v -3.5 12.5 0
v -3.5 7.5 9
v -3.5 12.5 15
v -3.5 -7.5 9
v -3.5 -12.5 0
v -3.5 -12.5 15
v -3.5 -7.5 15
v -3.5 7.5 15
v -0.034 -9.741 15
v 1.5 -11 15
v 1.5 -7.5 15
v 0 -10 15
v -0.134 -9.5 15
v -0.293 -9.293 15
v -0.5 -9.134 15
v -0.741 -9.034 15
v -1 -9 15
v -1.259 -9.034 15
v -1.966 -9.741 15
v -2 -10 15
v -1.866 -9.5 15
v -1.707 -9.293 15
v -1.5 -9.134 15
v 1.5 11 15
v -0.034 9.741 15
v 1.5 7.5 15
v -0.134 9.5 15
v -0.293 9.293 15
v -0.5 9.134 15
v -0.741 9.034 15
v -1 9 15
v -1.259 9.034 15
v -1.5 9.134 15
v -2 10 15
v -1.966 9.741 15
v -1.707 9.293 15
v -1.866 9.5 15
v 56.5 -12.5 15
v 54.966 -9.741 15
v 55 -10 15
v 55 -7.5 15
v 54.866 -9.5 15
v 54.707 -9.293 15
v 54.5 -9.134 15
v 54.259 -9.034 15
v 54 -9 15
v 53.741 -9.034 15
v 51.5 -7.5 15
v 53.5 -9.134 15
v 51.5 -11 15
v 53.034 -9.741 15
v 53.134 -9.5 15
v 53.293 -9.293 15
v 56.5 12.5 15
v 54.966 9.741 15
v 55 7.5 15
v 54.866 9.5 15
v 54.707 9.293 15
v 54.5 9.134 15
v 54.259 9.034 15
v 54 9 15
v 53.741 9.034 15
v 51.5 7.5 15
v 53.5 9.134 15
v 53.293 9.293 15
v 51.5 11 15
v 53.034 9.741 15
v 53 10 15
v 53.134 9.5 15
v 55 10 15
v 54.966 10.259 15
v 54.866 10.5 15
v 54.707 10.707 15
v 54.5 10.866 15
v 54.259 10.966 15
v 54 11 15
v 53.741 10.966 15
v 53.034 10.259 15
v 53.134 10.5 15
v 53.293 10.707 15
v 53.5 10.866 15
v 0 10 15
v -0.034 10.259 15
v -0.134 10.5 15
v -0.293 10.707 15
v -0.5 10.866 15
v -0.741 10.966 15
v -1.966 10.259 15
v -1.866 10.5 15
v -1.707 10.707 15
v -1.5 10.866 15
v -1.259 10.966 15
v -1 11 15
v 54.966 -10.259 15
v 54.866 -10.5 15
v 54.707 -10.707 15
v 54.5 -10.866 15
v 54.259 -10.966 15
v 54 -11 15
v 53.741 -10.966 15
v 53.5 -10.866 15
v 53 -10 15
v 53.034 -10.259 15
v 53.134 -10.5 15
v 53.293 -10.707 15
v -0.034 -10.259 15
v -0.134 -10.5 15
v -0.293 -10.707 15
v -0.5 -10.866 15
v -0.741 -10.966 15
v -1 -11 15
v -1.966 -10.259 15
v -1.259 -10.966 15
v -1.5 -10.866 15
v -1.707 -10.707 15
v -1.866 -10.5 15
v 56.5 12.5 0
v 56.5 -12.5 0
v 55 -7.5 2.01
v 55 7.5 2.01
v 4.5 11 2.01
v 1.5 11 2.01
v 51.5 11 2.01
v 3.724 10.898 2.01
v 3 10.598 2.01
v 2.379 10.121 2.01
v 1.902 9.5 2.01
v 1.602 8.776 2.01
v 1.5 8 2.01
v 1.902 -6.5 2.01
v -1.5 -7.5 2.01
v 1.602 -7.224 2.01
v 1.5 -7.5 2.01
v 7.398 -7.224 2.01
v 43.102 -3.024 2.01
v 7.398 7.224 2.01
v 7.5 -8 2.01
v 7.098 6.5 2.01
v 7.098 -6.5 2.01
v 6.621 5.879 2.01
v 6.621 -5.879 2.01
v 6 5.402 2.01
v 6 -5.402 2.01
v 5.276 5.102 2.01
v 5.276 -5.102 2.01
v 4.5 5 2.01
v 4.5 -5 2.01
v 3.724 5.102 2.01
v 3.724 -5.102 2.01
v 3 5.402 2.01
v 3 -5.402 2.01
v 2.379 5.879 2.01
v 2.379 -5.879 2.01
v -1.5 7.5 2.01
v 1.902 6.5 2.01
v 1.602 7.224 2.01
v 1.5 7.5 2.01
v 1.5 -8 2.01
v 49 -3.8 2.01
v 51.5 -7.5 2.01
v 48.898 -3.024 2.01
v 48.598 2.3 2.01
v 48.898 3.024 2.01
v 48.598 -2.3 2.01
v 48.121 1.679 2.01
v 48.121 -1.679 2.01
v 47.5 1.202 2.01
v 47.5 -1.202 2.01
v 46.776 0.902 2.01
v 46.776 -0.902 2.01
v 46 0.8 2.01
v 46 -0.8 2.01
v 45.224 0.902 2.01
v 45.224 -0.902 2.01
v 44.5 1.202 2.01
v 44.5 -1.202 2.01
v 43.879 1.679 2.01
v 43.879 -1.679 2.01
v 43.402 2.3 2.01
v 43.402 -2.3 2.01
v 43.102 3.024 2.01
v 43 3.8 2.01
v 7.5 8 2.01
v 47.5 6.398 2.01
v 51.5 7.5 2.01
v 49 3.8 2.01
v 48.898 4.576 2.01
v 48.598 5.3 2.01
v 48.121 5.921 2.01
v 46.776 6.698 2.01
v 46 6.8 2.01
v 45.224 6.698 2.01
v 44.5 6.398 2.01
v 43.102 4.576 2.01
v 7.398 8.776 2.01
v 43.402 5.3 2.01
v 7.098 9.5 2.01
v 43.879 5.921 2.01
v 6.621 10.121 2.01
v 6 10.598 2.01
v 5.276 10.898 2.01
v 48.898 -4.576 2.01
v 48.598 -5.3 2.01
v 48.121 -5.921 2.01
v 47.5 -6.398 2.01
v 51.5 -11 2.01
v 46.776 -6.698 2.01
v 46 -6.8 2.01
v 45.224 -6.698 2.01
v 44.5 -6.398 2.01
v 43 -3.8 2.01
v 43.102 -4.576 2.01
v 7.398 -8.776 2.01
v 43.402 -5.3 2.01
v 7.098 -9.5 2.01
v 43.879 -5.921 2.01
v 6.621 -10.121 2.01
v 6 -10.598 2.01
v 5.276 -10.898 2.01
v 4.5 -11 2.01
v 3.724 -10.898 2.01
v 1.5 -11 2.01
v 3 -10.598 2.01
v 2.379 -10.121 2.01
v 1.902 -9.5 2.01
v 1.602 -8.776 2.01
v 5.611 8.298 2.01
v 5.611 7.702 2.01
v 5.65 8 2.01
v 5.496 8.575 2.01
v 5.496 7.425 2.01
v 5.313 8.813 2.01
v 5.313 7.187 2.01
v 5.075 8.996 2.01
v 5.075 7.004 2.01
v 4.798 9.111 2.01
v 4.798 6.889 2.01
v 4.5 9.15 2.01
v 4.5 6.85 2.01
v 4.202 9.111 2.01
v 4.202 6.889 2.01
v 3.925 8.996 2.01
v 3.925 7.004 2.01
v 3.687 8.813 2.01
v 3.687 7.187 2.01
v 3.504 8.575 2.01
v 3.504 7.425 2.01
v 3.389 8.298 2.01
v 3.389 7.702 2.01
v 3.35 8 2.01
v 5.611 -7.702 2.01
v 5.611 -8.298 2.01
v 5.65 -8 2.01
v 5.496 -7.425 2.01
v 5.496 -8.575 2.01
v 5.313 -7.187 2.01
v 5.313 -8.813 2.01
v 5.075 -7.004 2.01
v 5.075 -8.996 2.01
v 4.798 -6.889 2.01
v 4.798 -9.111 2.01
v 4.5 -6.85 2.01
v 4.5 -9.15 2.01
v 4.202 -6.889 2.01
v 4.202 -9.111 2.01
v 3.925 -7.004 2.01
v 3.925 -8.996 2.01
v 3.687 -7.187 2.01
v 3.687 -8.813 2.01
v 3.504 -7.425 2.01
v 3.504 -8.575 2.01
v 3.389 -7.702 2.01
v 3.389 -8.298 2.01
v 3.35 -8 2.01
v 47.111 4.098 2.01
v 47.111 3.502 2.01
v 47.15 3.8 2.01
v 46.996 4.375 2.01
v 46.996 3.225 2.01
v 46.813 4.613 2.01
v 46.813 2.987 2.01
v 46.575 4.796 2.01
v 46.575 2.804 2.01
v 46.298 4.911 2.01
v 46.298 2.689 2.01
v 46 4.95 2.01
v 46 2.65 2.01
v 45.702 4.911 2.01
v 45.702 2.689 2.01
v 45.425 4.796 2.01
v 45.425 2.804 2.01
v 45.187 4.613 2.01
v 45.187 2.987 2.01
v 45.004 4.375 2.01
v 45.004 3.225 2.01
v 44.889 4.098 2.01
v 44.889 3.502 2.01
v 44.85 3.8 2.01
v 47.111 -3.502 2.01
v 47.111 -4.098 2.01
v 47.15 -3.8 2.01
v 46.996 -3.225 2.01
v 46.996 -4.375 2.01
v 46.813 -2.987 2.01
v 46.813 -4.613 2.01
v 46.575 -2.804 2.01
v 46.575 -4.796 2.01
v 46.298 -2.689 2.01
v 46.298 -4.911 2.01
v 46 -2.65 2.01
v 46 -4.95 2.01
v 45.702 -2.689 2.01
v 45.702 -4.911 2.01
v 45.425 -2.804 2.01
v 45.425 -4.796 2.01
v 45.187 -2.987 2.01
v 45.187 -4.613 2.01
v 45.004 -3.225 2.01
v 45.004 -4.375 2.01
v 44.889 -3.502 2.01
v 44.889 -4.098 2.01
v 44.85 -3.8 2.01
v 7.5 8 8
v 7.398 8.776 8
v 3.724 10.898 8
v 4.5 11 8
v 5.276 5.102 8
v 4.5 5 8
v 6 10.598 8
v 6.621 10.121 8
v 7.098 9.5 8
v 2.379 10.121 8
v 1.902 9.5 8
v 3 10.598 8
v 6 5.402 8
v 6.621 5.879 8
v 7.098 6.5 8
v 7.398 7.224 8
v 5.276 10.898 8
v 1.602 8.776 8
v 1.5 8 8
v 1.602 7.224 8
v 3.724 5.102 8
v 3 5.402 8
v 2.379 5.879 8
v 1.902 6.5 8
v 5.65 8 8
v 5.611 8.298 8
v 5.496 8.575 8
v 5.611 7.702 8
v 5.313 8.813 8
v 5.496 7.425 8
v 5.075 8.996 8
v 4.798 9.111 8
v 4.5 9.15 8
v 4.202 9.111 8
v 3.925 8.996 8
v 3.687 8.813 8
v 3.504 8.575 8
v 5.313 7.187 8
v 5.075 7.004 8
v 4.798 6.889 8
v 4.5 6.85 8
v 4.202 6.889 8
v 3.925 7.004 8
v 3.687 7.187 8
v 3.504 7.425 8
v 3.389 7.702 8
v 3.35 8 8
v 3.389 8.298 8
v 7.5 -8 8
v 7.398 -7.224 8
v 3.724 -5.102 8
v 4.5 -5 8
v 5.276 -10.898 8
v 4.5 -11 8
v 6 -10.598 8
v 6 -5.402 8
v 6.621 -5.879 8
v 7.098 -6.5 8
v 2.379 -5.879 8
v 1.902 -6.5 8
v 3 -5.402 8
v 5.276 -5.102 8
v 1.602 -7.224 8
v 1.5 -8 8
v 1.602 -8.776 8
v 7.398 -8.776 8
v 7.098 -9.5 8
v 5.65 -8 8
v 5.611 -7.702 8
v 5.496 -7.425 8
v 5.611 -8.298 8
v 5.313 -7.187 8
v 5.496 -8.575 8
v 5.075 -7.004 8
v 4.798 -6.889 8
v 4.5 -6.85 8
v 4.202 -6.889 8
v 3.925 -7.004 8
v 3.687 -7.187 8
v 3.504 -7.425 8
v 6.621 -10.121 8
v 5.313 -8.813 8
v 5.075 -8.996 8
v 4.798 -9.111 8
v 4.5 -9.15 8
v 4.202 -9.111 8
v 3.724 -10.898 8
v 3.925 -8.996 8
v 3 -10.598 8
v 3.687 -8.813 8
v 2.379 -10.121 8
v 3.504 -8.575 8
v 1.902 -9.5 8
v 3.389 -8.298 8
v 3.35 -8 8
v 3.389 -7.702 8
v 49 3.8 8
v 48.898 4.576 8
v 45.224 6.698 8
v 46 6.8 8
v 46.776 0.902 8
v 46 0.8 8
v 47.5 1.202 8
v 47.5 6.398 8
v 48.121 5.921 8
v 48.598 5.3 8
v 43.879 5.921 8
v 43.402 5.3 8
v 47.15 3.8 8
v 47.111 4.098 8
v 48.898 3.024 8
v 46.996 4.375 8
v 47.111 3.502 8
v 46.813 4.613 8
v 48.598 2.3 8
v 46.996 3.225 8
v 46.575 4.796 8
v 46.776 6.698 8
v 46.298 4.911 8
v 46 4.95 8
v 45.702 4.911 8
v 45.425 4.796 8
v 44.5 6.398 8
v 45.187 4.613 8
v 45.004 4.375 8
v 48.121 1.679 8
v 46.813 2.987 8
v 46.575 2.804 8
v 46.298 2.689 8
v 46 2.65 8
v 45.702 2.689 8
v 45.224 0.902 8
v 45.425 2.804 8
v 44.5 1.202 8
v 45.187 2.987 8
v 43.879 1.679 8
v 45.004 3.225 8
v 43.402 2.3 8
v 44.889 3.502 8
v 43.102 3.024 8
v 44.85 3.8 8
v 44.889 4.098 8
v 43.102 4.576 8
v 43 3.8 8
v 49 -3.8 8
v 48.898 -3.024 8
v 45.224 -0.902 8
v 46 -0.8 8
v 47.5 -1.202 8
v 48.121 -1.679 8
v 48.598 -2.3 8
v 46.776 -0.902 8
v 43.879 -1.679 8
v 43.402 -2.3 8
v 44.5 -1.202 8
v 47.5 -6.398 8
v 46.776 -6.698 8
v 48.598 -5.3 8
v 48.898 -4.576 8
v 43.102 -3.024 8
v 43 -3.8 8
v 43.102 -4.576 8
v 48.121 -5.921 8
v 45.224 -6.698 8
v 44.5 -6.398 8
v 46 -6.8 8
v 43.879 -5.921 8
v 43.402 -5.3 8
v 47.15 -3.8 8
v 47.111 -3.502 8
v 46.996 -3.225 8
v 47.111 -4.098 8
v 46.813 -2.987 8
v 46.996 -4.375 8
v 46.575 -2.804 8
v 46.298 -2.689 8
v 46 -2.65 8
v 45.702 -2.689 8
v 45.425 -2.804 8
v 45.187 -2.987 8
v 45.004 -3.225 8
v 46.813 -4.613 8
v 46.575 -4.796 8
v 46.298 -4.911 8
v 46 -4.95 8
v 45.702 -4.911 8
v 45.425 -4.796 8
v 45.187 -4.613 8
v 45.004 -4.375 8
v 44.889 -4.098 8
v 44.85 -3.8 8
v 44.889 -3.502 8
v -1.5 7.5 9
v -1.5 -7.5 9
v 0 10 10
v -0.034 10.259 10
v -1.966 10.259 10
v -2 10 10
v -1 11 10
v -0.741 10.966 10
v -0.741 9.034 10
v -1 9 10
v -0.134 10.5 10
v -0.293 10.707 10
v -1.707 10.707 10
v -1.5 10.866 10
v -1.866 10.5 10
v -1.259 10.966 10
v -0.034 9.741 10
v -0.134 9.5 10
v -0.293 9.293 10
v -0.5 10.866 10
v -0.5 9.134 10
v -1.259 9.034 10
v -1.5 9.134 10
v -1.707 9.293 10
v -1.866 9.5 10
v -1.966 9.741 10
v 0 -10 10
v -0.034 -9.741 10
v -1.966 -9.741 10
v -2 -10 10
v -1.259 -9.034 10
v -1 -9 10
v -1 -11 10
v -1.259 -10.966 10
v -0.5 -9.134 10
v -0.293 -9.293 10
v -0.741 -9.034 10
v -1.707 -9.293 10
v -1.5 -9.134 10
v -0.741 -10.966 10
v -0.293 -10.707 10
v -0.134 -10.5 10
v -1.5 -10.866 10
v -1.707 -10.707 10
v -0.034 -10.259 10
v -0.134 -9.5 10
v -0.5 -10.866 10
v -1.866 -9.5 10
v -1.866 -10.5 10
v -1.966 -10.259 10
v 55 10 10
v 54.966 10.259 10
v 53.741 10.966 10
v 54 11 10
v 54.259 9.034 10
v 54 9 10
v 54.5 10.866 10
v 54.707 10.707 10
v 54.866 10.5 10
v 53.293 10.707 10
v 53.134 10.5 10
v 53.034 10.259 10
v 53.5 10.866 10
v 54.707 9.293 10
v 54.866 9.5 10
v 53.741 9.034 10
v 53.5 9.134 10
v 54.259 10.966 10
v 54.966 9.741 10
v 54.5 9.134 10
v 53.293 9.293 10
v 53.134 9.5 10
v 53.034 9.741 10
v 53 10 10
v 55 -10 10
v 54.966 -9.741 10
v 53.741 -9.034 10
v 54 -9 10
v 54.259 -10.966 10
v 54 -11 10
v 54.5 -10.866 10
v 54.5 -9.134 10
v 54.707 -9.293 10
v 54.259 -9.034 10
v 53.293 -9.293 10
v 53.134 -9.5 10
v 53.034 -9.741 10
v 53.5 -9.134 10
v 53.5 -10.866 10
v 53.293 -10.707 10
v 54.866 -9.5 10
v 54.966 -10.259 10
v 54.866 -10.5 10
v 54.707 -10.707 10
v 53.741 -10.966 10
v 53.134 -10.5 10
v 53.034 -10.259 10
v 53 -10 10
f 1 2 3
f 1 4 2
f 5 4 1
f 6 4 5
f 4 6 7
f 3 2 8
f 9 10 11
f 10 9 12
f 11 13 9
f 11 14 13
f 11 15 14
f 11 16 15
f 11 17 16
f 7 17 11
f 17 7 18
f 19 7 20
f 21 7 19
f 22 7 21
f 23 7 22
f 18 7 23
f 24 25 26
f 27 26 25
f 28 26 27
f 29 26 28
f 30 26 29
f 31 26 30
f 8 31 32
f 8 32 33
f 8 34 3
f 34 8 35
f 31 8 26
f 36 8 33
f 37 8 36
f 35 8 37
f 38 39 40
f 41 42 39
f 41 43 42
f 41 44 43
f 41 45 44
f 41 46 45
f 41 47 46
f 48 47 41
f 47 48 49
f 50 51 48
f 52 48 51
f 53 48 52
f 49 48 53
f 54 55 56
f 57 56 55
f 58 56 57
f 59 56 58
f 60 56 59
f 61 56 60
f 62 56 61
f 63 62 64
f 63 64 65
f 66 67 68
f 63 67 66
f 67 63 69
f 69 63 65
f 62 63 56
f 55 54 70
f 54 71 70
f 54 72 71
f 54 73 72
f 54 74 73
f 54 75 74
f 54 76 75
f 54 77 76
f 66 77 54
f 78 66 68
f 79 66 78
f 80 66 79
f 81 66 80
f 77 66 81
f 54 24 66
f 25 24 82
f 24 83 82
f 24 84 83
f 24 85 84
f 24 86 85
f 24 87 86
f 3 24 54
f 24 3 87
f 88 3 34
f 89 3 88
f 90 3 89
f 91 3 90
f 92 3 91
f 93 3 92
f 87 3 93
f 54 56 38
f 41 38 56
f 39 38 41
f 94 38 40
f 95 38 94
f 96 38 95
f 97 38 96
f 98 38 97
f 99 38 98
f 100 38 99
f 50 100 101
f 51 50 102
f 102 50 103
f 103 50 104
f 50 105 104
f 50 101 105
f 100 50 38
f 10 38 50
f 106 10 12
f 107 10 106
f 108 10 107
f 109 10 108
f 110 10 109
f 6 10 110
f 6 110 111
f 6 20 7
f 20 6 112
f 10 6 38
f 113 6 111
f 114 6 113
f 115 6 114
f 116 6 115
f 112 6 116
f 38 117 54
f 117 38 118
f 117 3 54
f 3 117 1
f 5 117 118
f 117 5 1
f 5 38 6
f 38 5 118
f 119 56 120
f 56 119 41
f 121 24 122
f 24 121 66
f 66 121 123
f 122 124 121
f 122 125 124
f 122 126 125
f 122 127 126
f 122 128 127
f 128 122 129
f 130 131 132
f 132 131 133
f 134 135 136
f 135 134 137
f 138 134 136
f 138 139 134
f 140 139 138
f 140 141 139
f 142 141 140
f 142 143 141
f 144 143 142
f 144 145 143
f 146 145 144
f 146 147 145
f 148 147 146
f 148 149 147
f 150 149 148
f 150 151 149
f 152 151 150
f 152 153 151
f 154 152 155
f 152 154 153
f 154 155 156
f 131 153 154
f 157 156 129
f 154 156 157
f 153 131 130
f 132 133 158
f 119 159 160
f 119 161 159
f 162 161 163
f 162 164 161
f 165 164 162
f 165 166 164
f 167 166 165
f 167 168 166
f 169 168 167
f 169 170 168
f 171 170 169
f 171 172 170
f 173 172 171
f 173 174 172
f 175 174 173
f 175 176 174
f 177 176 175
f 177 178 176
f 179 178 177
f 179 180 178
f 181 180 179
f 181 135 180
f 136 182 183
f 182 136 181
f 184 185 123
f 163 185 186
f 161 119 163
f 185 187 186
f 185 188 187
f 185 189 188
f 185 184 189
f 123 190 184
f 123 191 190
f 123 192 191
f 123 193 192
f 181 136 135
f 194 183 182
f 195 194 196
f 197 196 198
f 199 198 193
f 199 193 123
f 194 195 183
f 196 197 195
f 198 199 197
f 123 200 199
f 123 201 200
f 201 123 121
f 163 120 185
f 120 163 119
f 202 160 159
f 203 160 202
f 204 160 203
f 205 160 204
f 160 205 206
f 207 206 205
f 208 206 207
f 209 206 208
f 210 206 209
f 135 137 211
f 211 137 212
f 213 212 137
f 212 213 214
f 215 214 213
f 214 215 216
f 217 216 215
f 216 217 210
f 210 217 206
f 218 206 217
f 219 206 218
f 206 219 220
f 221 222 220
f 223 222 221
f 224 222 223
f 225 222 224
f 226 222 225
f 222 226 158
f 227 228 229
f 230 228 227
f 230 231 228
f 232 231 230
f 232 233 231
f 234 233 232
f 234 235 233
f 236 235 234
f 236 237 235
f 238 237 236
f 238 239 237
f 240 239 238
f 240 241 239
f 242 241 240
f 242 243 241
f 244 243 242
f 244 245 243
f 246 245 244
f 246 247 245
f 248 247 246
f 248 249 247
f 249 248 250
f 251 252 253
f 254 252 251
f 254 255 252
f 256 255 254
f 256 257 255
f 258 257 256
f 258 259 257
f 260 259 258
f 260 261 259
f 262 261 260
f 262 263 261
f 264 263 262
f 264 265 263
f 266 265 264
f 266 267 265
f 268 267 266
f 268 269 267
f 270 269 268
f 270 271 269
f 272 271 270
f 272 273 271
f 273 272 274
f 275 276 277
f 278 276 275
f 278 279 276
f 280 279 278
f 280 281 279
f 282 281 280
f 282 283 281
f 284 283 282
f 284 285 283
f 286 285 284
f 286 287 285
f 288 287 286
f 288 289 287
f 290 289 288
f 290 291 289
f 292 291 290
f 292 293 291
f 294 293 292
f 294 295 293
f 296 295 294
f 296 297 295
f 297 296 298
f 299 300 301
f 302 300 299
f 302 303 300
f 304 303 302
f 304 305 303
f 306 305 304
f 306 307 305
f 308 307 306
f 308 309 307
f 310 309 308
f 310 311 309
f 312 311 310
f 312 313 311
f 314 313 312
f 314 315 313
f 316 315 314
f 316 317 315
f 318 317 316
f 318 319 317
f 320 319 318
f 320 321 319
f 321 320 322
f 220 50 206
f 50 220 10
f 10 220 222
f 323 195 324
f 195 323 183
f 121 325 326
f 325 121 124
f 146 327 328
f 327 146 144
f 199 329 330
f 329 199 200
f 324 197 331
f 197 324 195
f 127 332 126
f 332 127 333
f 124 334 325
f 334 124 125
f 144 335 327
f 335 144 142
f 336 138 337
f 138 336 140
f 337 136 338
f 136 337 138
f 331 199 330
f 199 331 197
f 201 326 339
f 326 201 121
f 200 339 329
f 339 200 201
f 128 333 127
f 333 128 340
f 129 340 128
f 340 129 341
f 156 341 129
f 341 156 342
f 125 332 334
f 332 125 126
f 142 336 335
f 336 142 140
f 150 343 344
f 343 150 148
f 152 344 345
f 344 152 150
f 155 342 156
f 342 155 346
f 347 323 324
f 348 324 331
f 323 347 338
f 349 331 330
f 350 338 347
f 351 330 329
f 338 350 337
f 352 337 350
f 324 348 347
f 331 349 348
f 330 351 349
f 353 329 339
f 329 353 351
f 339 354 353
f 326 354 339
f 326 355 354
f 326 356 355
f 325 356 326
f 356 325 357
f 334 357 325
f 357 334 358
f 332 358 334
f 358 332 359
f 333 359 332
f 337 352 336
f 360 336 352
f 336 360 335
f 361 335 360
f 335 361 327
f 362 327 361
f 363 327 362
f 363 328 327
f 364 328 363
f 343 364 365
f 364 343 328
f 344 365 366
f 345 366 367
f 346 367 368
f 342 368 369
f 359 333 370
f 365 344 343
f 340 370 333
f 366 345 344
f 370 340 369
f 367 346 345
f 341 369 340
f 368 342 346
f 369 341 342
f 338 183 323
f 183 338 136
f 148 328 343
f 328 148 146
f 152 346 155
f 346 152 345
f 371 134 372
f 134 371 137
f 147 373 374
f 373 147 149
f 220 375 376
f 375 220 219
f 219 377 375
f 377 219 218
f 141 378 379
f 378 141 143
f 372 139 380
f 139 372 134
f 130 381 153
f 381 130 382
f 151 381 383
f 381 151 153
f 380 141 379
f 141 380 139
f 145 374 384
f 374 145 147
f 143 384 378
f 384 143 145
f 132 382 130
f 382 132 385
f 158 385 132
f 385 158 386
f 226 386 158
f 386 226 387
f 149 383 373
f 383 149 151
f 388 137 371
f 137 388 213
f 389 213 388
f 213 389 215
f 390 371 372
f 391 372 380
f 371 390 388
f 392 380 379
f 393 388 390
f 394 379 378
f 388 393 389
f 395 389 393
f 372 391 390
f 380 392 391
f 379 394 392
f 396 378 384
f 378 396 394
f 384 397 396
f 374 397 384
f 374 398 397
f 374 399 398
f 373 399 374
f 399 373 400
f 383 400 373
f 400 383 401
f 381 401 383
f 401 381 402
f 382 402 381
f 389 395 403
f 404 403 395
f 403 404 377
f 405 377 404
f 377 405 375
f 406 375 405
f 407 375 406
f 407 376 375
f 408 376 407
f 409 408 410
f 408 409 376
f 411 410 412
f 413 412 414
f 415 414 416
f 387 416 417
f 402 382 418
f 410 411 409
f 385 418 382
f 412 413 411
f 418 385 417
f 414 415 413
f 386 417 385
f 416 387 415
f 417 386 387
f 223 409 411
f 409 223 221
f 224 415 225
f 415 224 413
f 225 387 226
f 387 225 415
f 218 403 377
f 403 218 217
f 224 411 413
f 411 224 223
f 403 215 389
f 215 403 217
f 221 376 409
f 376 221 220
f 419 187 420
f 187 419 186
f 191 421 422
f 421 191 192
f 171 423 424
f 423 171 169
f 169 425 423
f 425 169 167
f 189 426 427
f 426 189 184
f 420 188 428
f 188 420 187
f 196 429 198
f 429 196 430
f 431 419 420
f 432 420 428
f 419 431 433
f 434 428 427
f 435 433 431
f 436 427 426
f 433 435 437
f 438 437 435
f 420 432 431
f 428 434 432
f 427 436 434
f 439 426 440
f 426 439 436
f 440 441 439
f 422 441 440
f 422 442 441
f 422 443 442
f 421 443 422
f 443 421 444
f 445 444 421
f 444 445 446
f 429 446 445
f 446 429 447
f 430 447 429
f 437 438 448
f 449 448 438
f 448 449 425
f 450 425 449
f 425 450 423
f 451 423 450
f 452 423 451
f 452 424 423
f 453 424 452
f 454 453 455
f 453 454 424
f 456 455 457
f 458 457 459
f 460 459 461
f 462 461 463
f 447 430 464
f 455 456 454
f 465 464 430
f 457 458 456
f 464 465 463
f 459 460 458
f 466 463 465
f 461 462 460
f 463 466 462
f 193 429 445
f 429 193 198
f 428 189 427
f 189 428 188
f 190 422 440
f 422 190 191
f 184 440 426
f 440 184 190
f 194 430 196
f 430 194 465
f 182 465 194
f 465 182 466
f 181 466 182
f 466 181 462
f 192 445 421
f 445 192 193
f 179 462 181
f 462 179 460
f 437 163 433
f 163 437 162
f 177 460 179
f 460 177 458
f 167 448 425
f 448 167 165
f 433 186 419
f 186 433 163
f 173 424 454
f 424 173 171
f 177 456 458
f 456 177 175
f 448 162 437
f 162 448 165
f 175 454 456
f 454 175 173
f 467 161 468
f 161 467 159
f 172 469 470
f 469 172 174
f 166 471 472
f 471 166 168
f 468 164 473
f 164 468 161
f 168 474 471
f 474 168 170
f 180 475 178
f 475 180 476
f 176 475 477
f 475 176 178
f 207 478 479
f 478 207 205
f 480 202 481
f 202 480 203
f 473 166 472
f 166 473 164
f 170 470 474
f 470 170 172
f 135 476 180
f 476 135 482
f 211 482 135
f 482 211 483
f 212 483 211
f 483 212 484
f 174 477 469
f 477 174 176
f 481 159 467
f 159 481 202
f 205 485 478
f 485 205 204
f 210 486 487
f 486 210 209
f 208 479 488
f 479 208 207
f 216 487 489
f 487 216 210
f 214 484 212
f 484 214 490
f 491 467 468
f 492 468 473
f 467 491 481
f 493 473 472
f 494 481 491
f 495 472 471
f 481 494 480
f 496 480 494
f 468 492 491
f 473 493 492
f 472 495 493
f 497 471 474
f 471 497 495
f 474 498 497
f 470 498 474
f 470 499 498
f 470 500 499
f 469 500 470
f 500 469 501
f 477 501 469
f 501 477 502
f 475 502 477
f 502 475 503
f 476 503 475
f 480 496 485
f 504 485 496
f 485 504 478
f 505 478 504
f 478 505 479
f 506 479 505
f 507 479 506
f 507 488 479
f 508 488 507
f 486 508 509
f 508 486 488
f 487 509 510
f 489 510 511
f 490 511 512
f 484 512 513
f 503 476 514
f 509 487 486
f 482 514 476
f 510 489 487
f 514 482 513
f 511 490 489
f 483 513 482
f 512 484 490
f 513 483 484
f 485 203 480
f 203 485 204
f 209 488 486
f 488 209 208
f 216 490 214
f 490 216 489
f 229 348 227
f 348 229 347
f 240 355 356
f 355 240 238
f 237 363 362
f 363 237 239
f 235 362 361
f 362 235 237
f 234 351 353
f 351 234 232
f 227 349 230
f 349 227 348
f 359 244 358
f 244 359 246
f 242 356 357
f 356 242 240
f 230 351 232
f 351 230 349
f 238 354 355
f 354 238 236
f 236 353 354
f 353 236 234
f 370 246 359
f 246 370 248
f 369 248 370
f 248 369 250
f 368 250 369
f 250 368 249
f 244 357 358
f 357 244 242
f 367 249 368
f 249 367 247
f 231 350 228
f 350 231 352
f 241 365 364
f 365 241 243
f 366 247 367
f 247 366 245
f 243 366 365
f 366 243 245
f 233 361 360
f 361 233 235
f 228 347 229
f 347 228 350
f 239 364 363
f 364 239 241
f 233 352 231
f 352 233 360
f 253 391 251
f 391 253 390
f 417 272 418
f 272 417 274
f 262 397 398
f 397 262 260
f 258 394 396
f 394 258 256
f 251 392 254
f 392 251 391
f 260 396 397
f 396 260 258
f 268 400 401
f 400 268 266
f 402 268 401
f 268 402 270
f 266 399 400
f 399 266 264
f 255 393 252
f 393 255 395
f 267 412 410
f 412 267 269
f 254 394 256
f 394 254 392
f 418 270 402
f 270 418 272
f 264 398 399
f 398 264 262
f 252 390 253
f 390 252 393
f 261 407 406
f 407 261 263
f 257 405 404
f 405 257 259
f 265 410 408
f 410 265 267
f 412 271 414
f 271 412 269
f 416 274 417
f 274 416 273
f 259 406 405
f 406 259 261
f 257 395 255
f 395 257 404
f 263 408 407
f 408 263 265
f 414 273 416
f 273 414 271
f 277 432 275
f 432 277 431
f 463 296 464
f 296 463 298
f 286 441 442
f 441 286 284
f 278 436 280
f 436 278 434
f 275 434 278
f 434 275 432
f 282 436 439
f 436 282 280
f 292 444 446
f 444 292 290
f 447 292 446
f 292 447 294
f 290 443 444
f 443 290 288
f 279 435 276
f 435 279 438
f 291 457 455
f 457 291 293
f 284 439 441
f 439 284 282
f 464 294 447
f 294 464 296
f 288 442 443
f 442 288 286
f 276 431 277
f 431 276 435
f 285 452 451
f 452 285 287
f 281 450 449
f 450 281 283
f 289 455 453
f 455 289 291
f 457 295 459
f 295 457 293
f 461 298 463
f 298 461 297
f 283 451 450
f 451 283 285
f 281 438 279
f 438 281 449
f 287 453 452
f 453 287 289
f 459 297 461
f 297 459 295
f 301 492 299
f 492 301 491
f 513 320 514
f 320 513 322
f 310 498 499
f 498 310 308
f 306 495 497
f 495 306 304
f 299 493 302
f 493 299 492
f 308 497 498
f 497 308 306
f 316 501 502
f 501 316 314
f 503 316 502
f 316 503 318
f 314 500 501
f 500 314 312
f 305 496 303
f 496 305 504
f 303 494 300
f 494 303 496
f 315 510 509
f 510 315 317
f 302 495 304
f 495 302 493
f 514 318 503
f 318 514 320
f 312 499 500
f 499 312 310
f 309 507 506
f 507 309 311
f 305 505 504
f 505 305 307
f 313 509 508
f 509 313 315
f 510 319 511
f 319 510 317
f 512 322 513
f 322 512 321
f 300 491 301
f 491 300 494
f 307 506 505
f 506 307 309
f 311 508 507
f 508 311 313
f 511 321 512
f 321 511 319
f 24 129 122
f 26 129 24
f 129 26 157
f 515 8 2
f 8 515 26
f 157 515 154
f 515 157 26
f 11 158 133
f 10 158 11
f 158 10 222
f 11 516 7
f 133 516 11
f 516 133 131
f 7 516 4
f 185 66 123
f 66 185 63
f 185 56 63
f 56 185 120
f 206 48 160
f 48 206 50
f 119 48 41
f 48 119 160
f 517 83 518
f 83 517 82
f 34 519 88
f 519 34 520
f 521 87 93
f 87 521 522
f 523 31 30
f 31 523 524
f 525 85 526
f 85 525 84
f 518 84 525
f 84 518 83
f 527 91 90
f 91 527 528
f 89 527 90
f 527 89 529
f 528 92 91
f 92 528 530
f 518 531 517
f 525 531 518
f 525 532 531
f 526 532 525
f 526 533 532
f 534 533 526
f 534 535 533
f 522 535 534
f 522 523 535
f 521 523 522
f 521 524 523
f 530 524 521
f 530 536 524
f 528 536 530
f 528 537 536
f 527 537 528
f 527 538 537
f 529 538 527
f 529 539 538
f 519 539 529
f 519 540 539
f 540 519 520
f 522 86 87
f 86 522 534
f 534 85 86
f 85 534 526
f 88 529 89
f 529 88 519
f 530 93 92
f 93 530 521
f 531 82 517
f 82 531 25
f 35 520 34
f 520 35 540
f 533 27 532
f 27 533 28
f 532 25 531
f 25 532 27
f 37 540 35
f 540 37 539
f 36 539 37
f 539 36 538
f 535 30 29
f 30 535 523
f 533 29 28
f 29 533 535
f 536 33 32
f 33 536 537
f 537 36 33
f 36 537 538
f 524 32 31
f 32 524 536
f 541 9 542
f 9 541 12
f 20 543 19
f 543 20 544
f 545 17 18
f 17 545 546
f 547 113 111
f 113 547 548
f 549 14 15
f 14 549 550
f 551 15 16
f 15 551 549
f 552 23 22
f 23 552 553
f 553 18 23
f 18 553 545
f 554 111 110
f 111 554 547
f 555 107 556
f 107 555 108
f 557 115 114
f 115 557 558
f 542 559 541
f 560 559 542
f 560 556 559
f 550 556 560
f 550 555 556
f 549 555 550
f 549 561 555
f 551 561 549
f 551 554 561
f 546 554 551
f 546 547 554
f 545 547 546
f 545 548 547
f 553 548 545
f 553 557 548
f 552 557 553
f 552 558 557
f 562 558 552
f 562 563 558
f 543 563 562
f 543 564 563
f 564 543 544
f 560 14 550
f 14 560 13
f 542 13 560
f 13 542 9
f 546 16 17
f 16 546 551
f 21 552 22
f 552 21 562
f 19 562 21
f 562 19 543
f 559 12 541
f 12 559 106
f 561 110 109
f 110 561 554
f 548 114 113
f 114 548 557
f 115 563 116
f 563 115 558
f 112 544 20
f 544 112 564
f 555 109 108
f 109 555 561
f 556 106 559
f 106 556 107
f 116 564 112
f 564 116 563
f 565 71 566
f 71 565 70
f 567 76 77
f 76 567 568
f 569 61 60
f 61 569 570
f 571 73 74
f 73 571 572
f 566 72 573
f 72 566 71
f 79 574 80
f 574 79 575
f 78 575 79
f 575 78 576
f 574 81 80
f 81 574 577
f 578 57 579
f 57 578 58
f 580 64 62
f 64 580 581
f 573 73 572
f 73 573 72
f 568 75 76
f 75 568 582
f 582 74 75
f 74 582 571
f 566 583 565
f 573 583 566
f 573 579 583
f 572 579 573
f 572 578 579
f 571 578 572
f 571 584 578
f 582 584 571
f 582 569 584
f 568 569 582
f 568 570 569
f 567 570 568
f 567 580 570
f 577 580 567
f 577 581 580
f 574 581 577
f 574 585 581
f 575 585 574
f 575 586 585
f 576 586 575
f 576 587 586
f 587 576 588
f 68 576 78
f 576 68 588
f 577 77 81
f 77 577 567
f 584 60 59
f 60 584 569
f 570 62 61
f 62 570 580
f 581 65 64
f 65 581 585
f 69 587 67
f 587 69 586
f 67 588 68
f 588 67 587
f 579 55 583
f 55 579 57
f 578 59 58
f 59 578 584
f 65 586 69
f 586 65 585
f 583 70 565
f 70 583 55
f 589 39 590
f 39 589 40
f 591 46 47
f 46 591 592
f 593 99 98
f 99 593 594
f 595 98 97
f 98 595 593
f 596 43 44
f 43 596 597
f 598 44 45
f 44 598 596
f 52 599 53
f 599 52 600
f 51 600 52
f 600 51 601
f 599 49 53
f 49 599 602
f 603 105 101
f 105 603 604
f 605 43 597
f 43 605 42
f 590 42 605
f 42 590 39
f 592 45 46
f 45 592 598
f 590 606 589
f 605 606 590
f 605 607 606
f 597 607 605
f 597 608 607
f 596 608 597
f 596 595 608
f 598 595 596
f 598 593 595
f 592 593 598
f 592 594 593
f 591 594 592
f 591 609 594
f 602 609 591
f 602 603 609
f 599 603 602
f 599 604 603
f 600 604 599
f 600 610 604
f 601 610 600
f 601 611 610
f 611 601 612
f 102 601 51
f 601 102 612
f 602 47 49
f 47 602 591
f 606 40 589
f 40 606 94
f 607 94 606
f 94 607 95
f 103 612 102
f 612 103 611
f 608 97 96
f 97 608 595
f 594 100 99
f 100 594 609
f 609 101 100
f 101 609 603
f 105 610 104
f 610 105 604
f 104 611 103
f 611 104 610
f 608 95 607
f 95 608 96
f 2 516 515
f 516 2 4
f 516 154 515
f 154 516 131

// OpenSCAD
$fn=24;

difference(){
union(){
translate([0,-12.5,0])cube([53,25,2]);
translate([4.5,8,0])cylinder(d=6,h=8);
translate([4.5,-8,0])cylinder(d=6,h=8);
translate([46,3.8,0])cylinder(d=6,h=8);
translate([46,-3.8,0])cylinder(d=6,h=8);
}
translate([4.5,8,-1])cylinder(d=2.3,h=10);
translate([4.5,-8,-1])cylinder(d=2.3,h=10);
translate([46,3.8,-1])cylinder(d=2.3,h=10);
translate([46,-3.8,-1])cylinder(d=2.3,h=10);
}

difference(){
translate([-3.5,-12.5,0])cube([60,25,15]);
translate([-5,-11,2.01])cube([60,22,20]);
translate([-1.5,10.5,10])cylinder(d=2,h=10);
translate([-1.5,-10.5,10])cylinder(d=2,h=10);
translate([54.5,10.5,10])cylinder(d=2,h=10);
translate([54.5,-10.5,10])cylinder(d=2,h=10);
}

difference(){
union(){
translate([-3.5,7.5,0])cube([5,5,15]);
translate([-3.5,-12.5,0])cube([5,5,15]);
translate([51.5,7.5,0])cube([5,5,15]);
translate([51.5,-12.5,0])cube([5,5,15]);
}
translate([-1,10,10])cylinder(d=2,h=10);
translate([-1,-10,10])cylinder(d=2,h=10);
translate([54,10,10])cylinder(d=2,h=10);
translate([54,-10,10])cylinder(d=2,h=10);
}

translate([-3.5,-12.5,0])cube([2,25,9]);
